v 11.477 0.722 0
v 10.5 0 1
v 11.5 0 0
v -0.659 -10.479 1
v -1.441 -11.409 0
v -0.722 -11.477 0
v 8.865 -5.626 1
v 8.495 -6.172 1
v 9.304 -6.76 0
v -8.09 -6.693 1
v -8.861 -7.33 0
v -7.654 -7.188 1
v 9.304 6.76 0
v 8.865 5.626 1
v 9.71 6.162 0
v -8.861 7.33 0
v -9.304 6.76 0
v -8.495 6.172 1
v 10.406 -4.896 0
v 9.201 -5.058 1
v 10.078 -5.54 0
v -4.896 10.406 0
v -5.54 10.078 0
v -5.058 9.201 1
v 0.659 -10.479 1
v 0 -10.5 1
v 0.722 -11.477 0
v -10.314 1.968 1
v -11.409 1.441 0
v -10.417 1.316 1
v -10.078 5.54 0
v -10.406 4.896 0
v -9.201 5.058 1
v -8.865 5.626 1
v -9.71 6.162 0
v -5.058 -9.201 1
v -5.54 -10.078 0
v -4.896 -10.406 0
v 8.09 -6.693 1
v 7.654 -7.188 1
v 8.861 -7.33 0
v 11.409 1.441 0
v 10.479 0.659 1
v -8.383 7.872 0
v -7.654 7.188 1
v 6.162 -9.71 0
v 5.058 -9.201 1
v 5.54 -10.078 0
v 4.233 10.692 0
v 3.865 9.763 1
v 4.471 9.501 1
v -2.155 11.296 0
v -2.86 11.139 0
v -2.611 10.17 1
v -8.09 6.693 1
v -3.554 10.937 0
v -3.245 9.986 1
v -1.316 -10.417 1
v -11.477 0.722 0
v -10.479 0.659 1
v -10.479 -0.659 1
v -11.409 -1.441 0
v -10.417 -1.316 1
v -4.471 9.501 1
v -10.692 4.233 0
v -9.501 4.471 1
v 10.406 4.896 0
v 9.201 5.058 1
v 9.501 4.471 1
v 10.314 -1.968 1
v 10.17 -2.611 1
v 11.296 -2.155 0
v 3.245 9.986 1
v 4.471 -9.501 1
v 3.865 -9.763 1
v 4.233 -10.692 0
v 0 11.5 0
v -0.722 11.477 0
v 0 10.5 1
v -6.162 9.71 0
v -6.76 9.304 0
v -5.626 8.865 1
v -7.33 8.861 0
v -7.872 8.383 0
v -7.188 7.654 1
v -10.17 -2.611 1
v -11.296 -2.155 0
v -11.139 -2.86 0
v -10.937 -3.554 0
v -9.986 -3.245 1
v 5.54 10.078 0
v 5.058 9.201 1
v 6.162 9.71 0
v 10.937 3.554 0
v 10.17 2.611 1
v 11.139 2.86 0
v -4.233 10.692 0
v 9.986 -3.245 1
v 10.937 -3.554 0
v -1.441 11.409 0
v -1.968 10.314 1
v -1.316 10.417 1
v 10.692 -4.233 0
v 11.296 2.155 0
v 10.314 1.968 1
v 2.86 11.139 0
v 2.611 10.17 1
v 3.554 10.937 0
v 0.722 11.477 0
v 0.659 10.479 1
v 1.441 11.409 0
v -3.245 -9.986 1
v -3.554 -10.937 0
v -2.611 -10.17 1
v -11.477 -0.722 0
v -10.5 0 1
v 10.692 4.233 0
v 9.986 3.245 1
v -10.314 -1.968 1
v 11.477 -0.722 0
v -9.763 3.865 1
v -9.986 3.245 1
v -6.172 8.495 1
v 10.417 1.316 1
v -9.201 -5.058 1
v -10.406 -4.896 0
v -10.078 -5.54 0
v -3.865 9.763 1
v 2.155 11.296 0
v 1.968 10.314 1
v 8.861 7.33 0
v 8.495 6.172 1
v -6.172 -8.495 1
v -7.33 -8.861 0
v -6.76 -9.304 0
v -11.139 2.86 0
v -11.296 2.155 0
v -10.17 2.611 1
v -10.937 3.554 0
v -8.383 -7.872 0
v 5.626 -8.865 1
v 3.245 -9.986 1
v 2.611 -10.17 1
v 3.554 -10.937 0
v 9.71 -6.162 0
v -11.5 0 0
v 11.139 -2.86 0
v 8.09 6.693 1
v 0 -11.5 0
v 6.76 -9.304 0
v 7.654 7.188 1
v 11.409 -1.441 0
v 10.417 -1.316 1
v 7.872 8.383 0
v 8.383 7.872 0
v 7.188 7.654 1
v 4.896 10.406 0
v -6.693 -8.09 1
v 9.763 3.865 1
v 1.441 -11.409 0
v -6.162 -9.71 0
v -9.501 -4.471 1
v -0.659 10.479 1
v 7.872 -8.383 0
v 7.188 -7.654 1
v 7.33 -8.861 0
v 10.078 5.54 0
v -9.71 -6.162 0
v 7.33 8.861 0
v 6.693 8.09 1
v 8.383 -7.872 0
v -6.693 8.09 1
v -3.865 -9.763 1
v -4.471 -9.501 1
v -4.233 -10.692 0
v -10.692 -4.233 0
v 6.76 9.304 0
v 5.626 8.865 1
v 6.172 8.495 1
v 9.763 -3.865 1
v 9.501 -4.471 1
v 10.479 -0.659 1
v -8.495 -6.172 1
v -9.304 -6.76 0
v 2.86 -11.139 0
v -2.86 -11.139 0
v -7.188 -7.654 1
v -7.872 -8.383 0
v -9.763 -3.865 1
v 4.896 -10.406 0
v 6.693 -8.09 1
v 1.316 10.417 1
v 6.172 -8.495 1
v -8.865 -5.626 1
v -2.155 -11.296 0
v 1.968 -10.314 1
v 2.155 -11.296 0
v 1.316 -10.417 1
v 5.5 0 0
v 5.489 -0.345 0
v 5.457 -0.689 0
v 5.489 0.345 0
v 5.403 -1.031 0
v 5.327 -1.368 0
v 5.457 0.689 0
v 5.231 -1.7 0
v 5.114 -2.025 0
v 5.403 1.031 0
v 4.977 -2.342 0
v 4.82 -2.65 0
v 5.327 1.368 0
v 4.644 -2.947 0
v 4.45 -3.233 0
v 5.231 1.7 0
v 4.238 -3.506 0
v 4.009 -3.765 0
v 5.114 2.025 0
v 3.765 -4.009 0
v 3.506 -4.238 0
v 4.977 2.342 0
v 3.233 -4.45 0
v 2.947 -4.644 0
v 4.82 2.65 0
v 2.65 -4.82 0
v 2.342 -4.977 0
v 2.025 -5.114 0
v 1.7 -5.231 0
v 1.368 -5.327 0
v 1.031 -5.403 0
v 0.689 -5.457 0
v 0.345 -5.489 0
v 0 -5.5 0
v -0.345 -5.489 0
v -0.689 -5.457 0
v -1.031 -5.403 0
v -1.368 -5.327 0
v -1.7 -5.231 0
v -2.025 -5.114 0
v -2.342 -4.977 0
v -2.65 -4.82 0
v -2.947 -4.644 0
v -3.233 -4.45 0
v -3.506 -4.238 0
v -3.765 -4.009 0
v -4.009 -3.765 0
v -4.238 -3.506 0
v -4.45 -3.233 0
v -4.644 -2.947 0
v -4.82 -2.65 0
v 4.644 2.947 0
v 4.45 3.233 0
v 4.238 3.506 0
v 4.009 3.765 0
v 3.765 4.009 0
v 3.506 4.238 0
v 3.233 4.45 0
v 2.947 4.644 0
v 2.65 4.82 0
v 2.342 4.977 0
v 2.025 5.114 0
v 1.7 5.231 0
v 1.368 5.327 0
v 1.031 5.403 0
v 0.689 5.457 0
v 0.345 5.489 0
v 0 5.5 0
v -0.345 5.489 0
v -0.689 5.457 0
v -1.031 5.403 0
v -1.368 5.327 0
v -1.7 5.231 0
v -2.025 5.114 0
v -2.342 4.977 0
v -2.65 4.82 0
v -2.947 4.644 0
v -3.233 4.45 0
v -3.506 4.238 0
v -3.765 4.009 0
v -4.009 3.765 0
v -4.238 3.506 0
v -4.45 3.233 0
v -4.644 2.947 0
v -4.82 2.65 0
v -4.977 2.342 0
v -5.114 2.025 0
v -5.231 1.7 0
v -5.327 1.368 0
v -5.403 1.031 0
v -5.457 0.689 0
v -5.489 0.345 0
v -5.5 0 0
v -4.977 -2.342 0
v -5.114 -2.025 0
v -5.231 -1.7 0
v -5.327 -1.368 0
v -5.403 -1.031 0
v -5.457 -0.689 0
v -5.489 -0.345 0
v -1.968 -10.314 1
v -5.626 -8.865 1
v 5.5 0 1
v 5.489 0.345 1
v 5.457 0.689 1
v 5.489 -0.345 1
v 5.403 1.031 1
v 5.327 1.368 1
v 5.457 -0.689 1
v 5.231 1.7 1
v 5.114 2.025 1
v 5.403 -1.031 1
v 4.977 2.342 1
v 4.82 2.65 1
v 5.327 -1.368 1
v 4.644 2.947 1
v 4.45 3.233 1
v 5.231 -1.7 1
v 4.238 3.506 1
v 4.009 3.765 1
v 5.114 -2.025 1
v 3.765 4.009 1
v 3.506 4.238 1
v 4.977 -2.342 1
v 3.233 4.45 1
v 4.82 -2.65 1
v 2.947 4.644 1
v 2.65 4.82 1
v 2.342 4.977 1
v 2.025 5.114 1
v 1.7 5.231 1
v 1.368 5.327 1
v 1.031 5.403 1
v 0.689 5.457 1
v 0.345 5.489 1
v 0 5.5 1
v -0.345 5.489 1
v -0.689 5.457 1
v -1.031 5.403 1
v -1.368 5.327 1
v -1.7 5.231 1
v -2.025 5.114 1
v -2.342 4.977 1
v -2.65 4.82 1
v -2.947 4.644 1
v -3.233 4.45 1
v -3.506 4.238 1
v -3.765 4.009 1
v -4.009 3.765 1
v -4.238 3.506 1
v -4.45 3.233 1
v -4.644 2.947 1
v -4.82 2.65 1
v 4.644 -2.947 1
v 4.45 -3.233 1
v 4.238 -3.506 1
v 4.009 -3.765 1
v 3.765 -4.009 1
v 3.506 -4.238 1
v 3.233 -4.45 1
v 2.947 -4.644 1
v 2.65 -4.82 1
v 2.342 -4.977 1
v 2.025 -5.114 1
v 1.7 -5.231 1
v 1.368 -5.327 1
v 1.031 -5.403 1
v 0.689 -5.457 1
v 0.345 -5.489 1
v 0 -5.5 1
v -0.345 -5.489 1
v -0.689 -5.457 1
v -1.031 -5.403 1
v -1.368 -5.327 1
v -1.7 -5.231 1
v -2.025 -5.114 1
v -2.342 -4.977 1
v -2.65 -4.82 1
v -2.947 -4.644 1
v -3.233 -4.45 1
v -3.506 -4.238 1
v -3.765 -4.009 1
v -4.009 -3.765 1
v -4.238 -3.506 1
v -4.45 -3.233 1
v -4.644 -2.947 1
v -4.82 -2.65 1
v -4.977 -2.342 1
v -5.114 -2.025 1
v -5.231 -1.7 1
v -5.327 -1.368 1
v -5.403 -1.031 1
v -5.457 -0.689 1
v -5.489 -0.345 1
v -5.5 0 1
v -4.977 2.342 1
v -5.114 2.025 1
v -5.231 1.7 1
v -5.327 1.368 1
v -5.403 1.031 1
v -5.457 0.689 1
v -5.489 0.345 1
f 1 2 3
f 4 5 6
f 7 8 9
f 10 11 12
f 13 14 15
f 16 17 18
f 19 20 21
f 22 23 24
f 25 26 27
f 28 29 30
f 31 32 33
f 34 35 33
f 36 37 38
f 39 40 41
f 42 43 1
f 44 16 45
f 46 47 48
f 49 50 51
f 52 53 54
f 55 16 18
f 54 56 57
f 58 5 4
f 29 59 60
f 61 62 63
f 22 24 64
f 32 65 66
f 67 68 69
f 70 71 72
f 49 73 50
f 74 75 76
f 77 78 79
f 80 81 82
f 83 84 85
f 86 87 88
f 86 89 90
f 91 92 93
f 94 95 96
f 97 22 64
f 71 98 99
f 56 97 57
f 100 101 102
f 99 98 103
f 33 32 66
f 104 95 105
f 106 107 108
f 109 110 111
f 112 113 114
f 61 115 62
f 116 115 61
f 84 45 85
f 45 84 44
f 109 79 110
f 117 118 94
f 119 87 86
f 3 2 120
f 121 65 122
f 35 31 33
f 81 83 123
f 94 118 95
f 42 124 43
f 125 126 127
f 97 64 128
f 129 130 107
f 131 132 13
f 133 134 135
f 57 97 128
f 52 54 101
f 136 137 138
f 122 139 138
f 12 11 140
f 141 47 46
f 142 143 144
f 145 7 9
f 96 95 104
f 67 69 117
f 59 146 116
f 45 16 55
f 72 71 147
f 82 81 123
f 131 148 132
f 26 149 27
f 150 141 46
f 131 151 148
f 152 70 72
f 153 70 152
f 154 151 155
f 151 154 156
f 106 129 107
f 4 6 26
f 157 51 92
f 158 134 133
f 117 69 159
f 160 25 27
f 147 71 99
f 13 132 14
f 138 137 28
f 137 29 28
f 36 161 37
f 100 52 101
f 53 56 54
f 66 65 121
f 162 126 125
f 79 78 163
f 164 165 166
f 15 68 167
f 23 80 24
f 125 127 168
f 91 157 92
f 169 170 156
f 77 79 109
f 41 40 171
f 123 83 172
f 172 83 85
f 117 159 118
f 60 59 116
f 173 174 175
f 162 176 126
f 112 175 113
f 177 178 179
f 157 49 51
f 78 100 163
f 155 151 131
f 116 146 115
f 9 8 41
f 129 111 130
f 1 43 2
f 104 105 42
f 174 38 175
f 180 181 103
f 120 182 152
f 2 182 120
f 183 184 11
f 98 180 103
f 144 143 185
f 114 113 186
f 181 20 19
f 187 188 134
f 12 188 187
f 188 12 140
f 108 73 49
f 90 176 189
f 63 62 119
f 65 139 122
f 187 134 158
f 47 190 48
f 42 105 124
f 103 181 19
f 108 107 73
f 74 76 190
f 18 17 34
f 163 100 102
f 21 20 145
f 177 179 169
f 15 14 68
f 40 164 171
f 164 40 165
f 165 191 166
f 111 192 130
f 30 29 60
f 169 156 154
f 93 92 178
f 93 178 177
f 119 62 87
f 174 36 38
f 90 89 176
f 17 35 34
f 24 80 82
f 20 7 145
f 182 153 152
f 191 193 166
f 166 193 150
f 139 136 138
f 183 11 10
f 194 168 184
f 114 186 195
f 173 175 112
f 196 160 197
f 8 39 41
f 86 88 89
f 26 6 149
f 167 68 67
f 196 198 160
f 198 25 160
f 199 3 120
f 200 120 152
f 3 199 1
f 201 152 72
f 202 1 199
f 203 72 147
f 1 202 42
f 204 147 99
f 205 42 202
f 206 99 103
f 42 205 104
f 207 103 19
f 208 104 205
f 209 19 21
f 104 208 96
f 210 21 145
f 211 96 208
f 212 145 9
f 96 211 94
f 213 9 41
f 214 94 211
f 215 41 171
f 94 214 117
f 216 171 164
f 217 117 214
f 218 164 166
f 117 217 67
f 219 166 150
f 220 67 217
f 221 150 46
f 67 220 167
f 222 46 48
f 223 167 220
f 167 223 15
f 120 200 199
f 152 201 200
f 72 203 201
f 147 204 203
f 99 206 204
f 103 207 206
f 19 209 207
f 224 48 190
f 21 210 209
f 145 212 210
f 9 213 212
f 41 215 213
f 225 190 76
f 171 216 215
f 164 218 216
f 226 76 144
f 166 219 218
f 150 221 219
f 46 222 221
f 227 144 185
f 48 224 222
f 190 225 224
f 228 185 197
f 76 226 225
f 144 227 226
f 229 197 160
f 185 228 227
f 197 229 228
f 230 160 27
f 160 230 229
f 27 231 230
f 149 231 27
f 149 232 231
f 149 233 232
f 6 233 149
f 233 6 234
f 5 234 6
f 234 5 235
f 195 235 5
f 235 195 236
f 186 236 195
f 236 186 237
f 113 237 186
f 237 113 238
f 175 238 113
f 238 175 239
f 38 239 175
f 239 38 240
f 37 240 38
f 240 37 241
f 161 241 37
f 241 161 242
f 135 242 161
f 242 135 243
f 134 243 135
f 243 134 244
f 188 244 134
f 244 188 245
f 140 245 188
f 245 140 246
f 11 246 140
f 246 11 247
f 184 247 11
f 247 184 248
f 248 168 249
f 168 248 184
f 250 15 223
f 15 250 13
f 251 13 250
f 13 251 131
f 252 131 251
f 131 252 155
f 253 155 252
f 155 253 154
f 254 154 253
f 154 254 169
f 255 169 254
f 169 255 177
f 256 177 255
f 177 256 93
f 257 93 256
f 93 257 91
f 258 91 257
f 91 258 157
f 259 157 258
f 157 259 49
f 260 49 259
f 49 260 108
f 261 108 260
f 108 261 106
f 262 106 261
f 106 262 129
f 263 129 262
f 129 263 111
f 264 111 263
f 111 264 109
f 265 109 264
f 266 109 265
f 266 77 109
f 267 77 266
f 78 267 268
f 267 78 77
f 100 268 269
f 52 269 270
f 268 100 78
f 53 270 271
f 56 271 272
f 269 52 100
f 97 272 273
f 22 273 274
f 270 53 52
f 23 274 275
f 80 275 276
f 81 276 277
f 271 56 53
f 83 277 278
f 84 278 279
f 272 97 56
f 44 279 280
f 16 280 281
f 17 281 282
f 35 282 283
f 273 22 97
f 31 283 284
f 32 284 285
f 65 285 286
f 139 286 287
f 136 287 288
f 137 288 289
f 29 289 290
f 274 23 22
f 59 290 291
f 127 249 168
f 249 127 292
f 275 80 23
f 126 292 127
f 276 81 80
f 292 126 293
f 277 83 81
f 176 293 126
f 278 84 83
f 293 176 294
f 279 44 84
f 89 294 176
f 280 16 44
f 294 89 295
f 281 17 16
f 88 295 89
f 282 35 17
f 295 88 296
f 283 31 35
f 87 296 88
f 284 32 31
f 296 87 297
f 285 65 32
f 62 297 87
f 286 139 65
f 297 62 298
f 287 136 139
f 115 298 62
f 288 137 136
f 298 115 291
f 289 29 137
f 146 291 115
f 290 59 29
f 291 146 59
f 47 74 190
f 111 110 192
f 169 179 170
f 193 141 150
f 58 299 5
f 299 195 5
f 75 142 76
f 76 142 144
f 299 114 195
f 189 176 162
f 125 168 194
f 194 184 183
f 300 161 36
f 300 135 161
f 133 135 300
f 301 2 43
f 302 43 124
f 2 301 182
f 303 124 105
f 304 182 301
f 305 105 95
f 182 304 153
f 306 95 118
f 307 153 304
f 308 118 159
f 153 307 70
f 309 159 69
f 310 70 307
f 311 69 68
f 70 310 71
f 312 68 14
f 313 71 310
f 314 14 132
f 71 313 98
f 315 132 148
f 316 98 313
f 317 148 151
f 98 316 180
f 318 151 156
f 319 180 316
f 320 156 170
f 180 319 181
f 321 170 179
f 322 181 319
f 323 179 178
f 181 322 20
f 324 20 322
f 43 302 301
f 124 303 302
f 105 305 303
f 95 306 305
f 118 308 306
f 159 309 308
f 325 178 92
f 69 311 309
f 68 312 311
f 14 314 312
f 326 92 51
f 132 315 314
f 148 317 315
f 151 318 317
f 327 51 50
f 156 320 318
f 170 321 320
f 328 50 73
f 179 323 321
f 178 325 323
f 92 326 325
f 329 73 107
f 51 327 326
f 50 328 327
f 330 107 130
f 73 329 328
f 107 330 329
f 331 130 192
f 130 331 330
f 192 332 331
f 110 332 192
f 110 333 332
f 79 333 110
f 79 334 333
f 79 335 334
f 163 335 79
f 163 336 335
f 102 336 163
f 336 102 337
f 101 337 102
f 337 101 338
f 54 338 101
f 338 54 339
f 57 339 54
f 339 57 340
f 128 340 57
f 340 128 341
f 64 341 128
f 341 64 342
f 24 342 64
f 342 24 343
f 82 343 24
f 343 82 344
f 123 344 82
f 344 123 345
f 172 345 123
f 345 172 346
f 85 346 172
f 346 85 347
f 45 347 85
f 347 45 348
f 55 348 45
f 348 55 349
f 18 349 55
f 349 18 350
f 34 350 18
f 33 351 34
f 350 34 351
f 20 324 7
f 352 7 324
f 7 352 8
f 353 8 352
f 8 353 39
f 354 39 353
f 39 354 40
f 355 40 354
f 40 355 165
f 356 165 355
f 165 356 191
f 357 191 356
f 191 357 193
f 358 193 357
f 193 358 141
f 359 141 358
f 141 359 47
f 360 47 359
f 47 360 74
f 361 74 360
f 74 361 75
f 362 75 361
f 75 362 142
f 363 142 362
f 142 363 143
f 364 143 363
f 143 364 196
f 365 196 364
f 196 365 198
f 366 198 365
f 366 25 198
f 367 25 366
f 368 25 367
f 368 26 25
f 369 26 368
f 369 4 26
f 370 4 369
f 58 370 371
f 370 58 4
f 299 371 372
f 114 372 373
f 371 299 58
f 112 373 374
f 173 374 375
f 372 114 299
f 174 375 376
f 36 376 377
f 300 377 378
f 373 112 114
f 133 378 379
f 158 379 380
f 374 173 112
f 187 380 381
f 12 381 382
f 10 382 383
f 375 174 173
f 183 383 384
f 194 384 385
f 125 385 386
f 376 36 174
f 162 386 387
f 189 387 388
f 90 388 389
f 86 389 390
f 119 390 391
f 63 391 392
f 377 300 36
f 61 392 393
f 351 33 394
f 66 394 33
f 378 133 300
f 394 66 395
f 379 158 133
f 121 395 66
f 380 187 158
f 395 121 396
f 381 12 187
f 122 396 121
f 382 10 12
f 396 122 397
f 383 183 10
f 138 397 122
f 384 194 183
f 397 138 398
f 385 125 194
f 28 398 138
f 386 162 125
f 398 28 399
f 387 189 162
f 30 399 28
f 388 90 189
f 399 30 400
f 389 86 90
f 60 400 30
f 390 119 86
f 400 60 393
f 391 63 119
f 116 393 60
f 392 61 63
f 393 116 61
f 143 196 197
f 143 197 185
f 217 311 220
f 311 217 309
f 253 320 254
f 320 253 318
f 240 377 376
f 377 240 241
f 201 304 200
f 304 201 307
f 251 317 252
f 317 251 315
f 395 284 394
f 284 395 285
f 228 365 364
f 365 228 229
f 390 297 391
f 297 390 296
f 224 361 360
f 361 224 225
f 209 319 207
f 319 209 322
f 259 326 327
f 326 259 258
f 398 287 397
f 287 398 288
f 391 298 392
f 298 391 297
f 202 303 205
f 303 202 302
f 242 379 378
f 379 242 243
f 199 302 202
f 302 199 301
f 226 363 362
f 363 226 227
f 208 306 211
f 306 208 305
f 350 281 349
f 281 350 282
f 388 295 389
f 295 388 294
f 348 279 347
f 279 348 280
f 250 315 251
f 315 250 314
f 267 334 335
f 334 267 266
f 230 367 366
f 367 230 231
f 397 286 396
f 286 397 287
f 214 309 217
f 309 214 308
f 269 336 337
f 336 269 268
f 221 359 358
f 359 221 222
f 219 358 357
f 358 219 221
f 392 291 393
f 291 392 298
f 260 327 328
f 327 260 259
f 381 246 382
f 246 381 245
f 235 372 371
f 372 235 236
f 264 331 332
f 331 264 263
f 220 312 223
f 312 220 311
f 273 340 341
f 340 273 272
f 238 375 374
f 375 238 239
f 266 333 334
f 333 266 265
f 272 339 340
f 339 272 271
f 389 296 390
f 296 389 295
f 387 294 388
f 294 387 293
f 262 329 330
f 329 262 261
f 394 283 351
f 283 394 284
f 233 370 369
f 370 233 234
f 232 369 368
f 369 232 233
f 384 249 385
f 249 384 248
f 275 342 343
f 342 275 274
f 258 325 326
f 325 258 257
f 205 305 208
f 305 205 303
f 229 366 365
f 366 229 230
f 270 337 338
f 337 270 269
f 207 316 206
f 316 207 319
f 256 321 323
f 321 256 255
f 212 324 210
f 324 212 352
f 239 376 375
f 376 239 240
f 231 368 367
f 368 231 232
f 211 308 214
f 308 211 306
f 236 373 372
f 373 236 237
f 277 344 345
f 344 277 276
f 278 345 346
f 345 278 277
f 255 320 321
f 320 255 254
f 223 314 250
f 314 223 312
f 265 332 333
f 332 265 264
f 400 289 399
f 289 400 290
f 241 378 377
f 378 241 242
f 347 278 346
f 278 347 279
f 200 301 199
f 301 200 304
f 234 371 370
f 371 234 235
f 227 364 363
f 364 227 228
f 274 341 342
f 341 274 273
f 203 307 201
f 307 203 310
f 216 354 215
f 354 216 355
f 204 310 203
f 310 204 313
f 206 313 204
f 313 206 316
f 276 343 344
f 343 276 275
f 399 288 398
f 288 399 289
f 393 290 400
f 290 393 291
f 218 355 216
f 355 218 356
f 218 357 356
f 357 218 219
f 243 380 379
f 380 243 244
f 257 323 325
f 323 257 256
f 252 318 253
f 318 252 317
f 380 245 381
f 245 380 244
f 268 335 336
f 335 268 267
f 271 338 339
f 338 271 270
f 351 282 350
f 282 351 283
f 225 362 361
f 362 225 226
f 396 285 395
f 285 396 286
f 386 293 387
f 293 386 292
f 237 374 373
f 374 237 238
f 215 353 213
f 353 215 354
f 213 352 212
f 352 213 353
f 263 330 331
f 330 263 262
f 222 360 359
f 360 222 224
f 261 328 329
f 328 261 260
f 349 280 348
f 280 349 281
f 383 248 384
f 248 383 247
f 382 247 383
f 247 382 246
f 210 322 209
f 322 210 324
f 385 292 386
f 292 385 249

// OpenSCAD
//since my jetson nano waveshare case has a reset and power button
// but they're swapped AND labeled.. this is to cover the reset label

$fn=100;

difference() {
    cylinder(h=1,d1=23,d2=21);
    translate([0,0,-.1]) cylinder(h=1.2,d=11);
}
